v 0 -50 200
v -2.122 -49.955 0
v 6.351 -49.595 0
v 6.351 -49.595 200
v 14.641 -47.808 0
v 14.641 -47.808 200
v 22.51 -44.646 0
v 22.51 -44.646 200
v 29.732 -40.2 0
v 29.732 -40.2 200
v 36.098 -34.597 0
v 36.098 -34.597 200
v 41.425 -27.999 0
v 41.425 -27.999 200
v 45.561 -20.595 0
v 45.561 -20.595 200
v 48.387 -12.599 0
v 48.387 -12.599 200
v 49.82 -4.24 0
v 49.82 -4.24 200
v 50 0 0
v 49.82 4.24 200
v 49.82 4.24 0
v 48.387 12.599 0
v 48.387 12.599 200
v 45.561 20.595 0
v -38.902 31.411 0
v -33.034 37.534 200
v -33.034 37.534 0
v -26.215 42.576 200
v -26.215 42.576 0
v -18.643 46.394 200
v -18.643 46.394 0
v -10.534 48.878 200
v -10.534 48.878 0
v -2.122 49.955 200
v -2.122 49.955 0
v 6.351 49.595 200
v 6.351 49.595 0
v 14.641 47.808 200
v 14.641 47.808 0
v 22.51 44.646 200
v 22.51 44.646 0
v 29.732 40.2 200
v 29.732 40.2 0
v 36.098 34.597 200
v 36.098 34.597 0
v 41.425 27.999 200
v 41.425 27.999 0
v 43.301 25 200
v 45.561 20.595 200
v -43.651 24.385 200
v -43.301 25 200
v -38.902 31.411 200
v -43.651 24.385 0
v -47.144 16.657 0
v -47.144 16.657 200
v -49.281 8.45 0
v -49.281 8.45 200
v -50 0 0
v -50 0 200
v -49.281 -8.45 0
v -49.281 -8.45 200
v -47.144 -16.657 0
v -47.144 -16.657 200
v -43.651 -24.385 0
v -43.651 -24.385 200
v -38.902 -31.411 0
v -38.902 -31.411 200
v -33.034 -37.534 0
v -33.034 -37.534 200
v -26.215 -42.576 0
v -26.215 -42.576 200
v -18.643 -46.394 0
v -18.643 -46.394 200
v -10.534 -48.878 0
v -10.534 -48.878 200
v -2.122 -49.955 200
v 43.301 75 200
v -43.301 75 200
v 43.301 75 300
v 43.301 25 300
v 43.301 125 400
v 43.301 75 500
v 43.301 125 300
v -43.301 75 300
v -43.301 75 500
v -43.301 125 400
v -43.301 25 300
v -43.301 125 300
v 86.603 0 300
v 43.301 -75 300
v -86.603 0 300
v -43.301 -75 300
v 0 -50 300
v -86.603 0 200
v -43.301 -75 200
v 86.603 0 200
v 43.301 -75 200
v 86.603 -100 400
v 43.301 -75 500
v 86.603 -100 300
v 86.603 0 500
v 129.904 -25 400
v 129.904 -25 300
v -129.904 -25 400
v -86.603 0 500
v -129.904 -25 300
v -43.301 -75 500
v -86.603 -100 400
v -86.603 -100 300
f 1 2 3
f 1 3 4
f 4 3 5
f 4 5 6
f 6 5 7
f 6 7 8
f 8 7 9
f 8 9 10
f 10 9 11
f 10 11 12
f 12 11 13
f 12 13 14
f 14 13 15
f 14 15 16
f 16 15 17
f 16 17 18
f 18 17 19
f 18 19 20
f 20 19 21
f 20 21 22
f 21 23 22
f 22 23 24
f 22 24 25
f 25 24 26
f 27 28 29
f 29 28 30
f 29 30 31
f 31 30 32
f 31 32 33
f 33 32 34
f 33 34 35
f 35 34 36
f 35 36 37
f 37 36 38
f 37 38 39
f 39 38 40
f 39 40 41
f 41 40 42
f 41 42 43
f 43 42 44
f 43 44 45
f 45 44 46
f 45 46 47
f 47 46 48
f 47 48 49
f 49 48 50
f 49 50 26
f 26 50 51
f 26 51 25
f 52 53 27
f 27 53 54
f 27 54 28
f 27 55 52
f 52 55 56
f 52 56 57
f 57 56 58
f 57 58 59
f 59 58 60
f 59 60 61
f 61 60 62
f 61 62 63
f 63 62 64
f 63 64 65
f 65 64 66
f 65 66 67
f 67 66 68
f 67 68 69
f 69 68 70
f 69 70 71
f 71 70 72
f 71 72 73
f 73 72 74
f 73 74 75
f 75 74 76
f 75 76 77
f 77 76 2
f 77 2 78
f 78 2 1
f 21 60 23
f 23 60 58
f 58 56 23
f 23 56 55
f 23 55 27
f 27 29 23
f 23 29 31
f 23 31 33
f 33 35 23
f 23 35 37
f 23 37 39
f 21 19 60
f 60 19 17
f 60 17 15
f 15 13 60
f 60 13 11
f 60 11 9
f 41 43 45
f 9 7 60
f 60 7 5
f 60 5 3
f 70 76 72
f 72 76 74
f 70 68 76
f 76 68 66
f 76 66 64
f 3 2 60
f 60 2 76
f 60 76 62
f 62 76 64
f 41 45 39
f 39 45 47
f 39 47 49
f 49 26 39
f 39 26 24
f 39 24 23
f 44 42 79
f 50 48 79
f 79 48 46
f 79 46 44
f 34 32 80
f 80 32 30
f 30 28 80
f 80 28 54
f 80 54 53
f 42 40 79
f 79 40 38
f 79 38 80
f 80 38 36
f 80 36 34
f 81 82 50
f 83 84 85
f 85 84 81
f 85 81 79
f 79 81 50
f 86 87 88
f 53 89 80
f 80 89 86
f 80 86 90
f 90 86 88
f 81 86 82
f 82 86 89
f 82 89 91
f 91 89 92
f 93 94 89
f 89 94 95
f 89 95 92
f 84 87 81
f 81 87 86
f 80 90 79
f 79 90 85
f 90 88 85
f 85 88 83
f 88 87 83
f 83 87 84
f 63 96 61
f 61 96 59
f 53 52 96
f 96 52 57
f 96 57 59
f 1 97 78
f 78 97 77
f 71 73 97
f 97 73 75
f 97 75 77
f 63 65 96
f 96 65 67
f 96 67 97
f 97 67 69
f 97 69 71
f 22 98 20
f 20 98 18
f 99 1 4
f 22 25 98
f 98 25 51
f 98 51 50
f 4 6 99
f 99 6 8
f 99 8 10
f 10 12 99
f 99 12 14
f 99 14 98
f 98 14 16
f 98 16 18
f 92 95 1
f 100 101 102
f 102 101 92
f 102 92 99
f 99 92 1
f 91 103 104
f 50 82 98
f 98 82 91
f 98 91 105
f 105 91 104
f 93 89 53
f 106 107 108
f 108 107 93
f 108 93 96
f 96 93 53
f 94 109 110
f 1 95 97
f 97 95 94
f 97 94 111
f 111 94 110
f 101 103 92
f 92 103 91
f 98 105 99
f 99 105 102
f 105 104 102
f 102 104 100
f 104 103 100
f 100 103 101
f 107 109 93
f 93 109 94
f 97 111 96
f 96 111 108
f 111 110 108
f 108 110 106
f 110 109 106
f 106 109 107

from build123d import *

# Parameters (mm, degrees)
SKETCH1_R           = 50
BOSS_EXTRUDE1_DEPTH = 200
BOSS_EXTRUDE2_DEPTH = 100
BOSS_EXTRUDE4_DEPTH = 86.60254
CIRPATTERN1_COUNT   = 3


with BuildPart() as part:
    # Sketch1 → Boss-Extrude1 (new body)
    with BuildSketch(Plane.XY):
        Circle(SKETCH1_R)
    extrude(amount=BOSS_EXTRUDE1_DEPTH)

    # Sketch2 → Boss-Extrude2 (add)
    with BuildSketch(Plane.XY.offset(200)):
        Polygon((43.301270189, 25), (43.301270189, 75), (-43.301270189, 75), (-43.301270189, 25), (0, 0), align=None)
    boss_extrude2 = extrude(amount=BOSS_EXTRUDE2_DEPTH)

    # Sketch3 → Boss-Extrude4 (add)
    with BuildSketch(Plane(origin=(-43.301270189, 0, 0), x_dir=(0, 1, 0), z_dir=(-1, 0, 0))):
        Polygon((75, -200), (75, -500), (125, -400), (125, -300), align=None)
    boss_extrude4 = extrude(amount=-BOSS_EXTRUDE4_DEPTH)

    # CirPattern1: Boss-Extrude2, Boss-Extrude4 ×3 about axis
    cirpattern1_axis = Axis((0, 0, 0), (0, 0, 1))
    for i in range(1, CIRPATTERN1_COUNT):
        add(boss_extrude2.rotate(cirpattern1_axis, i * 360 / CIRPATTERN1_COUNT))
        add(boss_extrude4.rotate(cirpattern1_axis, i * 360 / CIRPATTERN1_COUNT))


solid = part.part
